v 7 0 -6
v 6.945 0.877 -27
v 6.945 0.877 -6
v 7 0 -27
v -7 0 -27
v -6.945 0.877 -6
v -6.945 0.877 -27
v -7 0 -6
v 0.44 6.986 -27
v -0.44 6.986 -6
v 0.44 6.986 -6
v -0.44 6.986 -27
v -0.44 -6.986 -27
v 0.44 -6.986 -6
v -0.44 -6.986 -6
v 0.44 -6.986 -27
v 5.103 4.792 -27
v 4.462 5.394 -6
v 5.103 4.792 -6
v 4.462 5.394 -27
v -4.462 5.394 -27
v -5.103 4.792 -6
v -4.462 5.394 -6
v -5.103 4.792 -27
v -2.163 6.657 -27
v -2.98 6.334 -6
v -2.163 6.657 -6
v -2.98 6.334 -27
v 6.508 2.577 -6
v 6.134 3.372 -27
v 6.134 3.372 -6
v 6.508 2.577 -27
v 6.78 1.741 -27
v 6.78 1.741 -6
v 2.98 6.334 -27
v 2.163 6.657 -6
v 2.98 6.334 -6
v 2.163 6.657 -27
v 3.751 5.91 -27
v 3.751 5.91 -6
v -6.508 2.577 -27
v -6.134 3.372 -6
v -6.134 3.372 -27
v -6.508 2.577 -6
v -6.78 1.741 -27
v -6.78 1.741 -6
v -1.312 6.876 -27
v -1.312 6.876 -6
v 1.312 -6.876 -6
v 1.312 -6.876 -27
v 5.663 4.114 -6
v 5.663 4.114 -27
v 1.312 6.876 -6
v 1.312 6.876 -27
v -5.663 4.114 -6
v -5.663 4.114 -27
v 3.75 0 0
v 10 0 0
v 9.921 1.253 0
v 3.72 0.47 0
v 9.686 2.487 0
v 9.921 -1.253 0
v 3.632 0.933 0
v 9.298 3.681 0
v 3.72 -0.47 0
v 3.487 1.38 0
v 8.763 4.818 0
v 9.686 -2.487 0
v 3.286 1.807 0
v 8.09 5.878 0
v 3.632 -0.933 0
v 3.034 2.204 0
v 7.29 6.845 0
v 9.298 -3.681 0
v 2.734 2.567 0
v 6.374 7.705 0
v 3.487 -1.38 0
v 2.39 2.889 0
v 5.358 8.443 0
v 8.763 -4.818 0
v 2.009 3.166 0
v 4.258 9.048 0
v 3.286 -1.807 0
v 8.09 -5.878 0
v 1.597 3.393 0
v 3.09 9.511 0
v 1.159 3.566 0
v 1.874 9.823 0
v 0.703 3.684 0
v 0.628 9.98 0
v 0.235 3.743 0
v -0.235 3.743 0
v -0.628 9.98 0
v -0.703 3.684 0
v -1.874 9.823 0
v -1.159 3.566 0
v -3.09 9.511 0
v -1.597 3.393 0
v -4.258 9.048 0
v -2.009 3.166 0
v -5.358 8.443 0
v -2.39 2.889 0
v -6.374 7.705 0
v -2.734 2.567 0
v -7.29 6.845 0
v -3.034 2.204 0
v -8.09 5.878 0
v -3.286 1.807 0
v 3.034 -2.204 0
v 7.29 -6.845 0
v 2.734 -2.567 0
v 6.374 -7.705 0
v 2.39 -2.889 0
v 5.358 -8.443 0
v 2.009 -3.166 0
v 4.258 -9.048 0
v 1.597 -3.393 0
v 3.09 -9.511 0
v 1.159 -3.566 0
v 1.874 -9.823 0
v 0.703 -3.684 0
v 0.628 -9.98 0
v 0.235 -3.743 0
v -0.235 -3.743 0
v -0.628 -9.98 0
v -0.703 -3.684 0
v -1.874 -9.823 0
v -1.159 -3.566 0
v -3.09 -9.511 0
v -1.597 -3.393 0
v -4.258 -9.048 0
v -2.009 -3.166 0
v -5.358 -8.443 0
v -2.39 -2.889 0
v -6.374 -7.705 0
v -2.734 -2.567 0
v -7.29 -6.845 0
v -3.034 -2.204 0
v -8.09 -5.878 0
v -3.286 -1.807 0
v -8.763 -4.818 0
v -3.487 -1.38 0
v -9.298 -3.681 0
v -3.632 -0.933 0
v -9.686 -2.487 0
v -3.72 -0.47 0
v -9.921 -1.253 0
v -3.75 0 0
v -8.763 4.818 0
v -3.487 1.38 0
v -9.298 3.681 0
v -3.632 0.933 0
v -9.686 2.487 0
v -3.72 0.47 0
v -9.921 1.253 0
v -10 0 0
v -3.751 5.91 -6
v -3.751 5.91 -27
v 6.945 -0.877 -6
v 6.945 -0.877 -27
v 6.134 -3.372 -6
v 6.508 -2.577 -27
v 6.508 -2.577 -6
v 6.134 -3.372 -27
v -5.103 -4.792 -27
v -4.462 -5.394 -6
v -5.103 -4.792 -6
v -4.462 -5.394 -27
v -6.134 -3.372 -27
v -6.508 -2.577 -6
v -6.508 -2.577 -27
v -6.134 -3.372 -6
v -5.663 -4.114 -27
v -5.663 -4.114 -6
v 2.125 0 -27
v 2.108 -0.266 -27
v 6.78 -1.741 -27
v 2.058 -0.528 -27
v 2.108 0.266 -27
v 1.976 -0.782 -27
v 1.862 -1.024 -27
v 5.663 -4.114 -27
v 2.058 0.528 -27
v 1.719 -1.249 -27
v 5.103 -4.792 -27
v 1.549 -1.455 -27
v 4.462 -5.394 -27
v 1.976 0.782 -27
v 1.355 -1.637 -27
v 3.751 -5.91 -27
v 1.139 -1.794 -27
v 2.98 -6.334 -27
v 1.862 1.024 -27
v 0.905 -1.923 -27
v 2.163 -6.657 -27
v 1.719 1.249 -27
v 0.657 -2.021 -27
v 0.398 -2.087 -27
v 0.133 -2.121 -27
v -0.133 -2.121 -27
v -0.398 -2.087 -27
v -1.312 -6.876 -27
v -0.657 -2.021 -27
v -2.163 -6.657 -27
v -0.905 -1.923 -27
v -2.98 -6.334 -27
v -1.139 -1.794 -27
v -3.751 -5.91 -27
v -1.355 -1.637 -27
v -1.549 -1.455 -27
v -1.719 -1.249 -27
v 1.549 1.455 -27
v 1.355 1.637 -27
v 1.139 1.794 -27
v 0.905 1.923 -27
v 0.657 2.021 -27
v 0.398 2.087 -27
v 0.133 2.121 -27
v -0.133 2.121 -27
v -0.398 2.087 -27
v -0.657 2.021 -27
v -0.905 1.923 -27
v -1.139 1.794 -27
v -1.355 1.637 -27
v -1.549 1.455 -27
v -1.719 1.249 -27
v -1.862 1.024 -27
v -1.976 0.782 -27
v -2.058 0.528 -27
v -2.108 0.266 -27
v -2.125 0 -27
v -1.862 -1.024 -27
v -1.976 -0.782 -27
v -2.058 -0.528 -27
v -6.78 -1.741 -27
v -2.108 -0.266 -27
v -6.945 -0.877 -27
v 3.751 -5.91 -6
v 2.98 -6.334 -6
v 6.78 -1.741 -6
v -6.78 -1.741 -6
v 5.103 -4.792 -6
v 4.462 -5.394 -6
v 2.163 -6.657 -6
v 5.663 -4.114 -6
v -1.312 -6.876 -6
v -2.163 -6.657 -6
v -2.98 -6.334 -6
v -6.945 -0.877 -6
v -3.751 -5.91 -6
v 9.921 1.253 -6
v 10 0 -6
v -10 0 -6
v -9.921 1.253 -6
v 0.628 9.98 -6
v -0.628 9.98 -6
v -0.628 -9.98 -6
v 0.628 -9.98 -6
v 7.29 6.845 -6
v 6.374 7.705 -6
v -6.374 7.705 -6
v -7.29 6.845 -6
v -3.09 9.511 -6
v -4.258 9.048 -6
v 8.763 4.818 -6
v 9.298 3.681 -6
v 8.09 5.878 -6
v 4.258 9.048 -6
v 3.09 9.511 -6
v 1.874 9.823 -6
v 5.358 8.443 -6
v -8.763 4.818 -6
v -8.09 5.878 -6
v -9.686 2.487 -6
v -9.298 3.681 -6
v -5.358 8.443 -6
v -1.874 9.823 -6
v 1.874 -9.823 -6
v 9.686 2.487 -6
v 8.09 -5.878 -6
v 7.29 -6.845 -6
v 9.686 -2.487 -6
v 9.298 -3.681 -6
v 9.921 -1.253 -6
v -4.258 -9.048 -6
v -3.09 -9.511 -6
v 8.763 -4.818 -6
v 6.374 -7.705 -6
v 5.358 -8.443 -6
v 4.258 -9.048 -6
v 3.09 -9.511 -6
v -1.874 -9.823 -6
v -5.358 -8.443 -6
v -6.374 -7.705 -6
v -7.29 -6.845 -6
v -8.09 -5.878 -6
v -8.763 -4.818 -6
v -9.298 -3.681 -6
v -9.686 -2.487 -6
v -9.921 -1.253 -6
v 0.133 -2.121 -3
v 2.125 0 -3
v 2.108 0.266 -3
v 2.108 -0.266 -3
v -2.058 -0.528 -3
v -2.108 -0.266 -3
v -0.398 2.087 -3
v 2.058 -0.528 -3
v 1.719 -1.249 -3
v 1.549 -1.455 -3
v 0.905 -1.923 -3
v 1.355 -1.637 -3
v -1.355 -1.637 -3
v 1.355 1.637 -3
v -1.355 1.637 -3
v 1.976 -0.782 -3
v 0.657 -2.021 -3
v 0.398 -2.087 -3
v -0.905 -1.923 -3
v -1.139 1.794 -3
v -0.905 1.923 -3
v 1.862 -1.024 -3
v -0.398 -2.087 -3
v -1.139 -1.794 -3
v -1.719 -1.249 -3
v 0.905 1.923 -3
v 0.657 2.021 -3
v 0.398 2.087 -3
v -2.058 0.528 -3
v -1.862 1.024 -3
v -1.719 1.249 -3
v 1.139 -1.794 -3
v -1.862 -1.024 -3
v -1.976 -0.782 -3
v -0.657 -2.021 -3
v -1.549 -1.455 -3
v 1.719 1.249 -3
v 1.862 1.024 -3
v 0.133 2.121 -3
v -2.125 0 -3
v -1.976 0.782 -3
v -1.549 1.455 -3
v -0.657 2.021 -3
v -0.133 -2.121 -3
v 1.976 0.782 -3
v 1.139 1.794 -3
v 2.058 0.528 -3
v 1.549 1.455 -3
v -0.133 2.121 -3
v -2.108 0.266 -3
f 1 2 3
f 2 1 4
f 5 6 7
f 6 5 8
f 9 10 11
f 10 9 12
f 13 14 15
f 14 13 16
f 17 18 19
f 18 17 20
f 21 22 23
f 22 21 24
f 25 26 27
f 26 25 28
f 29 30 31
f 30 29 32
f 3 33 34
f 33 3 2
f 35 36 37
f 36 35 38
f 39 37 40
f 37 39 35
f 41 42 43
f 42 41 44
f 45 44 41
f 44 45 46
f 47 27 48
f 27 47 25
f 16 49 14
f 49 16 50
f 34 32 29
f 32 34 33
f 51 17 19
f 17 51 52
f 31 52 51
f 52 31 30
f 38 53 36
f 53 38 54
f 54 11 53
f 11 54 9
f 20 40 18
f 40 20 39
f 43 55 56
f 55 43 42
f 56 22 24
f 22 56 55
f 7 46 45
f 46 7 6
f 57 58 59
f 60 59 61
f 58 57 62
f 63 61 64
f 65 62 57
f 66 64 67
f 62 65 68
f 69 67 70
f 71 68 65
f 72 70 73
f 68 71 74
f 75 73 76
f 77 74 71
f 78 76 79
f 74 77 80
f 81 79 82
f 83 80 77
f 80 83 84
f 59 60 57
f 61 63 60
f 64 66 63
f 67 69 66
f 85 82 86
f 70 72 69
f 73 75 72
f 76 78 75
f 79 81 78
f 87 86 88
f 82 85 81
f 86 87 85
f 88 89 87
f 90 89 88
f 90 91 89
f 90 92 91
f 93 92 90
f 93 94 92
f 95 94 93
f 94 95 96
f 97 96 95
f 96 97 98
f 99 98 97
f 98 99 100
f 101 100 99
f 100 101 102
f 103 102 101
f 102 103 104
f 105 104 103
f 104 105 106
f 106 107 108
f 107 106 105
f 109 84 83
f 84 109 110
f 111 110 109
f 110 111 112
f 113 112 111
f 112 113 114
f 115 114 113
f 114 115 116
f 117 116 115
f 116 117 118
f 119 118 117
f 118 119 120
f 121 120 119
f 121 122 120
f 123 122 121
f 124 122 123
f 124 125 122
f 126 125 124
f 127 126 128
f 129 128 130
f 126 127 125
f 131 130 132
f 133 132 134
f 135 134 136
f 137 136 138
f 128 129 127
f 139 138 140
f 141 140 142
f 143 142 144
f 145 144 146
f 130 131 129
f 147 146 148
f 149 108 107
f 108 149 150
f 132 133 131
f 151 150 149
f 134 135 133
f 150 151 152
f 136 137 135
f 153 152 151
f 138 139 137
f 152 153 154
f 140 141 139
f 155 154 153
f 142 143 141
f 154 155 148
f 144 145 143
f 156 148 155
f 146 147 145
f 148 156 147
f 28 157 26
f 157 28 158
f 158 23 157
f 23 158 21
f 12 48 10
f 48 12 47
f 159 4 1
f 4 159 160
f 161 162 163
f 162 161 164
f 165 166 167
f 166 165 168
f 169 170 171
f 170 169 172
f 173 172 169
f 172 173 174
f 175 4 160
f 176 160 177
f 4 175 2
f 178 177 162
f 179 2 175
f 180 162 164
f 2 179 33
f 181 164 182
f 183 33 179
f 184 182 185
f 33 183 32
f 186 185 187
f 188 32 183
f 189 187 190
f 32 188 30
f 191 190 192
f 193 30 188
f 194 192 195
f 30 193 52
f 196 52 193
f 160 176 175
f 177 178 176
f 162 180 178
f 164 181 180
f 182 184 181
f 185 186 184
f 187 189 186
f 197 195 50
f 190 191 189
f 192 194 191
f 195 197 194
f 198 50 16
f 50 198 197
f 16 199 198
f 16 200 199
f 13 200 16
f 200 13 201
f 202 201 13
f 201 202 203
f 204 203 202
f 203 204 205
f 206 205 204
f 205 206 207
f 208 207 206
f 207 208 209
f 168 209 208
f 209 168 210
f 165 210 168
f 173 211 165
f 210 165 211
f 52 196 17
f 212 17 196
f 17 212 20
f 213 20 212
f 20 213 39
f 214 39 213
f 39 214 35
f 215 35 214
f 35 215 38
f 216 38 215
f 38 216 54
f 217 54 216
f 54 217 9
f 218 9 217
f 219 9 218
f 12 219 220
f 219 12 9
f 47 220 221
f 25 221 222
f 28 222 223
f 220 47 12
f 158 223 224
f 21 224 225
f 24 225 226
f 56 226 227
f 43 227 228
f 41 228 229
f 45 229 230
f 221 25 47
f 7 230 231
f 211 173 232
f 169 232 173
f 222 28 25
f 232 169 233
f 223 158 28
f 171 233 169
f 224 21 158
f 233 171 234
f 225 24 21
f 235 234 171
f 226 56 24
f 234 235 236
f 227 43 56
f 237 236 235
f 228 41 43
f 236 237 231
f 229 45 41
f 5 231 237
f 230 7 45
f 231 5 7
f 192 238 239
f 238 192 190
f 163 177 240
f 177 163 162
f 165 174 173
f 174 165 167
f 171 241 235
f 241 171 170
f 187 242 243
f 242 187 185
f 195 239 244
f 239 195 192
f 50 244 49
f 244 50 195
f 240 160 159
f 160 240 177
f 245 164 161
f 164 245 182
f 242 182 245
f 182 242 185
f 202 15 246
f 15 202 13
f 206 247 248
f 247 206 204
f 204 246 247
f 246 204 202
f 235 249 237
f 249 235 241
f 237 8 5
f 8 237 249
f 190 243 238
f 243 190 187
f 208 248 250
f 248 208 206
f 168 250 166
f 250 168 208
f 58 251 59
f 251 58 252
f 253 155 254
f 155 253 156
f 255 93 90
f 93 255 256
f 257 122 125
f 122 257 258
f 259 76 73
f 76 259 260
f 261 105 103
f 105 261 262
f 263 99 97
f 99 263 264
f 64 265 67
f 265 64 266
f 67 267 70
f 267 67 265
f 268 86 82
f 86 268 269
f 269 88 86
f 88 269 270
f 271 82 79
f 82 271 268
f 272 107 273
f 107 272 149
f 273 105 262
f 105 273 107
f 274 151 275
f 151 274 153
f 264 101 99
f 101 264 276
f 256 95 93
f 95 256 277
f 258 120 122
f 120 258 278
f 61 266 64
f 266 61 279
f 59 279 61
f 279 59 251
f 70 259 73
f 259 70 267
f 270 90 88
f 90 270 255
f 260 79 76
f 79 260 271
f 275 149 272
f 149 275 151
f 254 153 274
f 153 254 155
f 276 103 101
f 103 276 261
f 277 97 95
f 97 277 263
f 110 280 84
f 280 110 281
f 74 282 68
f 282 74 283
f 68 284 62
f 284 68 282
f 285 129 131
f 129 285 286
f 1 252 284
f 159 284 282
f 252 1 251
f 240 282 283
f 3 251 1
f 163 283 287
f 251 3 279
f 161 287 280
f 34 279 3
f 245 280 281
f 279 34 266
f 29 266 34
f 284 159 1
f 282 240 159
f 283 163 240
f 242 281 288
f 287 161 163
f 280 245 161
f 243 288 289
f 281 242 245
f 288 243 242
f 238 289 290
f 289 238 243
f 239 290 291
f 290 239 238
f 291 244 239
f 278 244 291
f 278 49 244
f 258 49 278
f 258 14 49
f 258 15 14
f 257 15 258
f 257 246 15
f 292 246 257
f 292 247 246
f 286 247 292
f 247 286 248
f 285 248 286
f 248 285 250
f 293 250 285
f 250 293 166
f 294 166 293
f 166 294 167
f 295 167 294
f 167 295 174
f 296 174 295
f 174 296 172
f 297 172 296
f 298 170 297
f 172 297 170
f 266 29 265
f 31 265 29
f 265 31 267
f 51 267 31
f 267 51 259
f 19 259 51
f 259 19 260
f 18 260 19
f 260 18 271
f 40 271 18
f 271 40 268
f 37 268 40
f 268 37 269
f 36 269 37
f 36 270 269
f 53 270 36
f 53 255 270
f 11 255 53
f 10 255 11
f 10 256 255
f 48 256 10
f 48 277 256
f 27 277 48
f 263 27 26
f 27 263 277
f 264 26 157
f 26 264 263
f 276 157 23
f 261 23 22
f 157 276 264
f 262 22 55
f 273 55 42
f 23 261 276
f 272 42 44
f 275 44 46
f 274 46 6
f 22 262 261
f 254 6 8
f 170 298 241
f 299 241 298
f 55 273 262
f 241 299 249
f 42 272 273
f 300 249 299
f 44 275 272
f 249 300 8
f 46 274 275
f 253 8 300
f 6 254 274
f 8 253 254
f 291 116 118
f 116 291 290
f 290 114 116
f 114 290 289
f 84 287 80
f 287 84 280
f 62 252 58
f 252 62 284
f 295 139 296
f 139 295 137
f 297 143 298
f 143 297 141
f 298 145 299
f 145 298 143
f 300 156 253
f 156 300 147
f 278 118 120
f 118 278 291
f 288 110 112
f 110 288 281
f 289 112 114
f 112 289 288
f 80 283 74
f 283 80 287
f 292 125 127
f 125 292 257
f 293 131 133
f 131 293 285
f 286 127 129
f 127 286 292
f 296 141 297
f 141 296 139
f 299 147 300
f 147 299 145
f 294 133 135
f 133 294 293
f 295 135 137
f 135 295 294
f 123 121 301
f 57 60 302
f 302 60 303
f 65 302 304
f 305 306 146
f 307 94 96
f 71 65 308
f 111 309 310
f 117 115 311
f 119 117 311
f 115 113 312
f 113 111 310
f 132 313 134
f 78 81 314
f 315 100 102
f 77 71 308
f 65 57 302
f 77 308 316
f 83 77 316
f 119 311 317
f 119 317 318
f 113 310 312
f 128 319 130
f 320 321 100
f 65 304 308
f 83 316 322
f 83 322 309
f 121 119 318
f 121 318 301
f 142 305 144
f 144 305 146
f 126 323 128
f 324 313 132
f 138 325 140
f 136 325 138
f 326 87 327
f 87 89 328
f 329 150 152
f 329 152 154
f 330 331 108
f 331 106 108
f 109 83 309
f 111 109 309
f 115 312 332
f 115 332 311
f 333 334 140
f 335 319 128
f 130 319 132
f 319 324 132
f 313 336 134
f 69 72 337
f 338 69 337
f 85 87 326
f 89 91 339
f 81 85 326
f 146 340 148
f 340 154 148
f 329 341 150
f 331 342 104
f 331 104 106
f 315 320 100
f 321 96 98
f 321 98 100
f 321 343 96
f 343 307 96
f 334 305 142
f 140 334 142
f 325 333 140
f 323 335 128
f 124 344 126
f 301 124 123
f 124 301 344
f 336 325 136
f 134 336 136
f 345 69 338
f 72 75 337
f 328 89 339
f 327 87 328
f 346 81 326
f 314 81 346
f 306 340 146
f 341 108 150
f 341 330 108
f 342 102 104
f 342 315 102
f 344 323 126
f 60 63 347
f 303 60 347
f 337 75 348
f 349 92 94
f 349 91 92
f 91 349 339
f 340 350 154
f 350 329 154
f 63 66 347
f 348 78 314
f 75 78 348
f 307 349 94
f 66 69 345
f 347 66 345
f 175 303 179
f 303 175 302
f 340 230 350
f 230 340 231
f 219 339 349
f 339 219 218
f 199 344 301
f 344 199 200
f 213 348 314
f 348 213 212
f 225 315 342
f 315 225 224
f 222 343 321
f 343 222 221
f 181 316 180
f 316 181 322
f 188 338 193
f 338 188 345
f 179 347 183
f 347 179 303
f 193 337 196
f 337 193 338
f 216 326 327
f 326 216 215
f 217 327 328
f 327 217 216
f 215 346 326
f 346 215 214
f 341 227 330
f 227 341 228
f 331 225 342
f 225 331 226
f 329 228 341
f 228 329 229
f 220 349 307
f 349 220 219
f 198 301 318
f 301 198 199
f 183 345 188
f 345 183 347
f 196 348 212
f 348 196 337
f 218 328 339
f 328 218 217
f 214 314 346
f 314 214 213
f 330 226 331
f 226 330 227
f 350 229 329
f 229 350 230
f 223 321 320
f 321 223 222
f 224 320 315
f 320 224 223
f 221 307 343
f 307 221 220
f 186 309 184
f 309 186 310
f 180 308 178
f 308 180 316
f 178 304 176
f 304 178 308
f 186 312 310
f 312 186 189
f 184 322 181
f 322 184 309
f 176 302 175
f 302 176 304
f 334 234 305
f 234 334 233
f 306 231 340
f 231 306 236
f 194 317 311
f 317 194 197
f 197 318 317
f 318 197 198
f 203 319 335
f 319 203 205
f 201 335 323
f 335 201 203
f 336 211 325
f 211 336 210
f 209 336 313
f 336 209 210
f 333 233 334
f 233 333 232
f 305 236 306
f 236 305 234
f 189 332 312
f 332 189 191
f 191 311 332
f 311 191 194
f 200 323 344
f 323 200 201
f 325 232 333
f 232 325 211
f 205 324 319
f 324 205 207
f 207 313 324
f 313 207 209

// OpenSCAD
$fn = 50;


difference() {
	union() {
		translate(v = [0, 0, -27.0000000000]) {
			cylinder(h = 27, r = 7.0000000000);
		}
		translate(v = [0, 0, -6.0000000000]) {
			cylinder(h = 6, r = 10.0000000000);
		}
	}
	union() {
		translate(v = [0, 0, 0]) {
			rotate(a = [0, 0, 0]) {
				difference() {
					union() {
						#translate(v = [0, 0, -27.0000000000]) {
							cylinder(h = 27, r = 2.0000000000);
						}
						#translate(v = [0, 0, -3]) {
							cylinder(h = 3, r = 7.0000000000, r1 = 2.1250000000, r2 = 3.7500000000);
						}
						#translate(v = [0, 0, -27.0000000000]) {
							cylinder(h = 27, r = 2.1250000000);
						}
						#translate(v = [0, 0, -27.0000000000]) {
							cylinder(h = 27, r = 2.0000000000);
						}
					}
					union();
				}
			}
		}
	}
}
